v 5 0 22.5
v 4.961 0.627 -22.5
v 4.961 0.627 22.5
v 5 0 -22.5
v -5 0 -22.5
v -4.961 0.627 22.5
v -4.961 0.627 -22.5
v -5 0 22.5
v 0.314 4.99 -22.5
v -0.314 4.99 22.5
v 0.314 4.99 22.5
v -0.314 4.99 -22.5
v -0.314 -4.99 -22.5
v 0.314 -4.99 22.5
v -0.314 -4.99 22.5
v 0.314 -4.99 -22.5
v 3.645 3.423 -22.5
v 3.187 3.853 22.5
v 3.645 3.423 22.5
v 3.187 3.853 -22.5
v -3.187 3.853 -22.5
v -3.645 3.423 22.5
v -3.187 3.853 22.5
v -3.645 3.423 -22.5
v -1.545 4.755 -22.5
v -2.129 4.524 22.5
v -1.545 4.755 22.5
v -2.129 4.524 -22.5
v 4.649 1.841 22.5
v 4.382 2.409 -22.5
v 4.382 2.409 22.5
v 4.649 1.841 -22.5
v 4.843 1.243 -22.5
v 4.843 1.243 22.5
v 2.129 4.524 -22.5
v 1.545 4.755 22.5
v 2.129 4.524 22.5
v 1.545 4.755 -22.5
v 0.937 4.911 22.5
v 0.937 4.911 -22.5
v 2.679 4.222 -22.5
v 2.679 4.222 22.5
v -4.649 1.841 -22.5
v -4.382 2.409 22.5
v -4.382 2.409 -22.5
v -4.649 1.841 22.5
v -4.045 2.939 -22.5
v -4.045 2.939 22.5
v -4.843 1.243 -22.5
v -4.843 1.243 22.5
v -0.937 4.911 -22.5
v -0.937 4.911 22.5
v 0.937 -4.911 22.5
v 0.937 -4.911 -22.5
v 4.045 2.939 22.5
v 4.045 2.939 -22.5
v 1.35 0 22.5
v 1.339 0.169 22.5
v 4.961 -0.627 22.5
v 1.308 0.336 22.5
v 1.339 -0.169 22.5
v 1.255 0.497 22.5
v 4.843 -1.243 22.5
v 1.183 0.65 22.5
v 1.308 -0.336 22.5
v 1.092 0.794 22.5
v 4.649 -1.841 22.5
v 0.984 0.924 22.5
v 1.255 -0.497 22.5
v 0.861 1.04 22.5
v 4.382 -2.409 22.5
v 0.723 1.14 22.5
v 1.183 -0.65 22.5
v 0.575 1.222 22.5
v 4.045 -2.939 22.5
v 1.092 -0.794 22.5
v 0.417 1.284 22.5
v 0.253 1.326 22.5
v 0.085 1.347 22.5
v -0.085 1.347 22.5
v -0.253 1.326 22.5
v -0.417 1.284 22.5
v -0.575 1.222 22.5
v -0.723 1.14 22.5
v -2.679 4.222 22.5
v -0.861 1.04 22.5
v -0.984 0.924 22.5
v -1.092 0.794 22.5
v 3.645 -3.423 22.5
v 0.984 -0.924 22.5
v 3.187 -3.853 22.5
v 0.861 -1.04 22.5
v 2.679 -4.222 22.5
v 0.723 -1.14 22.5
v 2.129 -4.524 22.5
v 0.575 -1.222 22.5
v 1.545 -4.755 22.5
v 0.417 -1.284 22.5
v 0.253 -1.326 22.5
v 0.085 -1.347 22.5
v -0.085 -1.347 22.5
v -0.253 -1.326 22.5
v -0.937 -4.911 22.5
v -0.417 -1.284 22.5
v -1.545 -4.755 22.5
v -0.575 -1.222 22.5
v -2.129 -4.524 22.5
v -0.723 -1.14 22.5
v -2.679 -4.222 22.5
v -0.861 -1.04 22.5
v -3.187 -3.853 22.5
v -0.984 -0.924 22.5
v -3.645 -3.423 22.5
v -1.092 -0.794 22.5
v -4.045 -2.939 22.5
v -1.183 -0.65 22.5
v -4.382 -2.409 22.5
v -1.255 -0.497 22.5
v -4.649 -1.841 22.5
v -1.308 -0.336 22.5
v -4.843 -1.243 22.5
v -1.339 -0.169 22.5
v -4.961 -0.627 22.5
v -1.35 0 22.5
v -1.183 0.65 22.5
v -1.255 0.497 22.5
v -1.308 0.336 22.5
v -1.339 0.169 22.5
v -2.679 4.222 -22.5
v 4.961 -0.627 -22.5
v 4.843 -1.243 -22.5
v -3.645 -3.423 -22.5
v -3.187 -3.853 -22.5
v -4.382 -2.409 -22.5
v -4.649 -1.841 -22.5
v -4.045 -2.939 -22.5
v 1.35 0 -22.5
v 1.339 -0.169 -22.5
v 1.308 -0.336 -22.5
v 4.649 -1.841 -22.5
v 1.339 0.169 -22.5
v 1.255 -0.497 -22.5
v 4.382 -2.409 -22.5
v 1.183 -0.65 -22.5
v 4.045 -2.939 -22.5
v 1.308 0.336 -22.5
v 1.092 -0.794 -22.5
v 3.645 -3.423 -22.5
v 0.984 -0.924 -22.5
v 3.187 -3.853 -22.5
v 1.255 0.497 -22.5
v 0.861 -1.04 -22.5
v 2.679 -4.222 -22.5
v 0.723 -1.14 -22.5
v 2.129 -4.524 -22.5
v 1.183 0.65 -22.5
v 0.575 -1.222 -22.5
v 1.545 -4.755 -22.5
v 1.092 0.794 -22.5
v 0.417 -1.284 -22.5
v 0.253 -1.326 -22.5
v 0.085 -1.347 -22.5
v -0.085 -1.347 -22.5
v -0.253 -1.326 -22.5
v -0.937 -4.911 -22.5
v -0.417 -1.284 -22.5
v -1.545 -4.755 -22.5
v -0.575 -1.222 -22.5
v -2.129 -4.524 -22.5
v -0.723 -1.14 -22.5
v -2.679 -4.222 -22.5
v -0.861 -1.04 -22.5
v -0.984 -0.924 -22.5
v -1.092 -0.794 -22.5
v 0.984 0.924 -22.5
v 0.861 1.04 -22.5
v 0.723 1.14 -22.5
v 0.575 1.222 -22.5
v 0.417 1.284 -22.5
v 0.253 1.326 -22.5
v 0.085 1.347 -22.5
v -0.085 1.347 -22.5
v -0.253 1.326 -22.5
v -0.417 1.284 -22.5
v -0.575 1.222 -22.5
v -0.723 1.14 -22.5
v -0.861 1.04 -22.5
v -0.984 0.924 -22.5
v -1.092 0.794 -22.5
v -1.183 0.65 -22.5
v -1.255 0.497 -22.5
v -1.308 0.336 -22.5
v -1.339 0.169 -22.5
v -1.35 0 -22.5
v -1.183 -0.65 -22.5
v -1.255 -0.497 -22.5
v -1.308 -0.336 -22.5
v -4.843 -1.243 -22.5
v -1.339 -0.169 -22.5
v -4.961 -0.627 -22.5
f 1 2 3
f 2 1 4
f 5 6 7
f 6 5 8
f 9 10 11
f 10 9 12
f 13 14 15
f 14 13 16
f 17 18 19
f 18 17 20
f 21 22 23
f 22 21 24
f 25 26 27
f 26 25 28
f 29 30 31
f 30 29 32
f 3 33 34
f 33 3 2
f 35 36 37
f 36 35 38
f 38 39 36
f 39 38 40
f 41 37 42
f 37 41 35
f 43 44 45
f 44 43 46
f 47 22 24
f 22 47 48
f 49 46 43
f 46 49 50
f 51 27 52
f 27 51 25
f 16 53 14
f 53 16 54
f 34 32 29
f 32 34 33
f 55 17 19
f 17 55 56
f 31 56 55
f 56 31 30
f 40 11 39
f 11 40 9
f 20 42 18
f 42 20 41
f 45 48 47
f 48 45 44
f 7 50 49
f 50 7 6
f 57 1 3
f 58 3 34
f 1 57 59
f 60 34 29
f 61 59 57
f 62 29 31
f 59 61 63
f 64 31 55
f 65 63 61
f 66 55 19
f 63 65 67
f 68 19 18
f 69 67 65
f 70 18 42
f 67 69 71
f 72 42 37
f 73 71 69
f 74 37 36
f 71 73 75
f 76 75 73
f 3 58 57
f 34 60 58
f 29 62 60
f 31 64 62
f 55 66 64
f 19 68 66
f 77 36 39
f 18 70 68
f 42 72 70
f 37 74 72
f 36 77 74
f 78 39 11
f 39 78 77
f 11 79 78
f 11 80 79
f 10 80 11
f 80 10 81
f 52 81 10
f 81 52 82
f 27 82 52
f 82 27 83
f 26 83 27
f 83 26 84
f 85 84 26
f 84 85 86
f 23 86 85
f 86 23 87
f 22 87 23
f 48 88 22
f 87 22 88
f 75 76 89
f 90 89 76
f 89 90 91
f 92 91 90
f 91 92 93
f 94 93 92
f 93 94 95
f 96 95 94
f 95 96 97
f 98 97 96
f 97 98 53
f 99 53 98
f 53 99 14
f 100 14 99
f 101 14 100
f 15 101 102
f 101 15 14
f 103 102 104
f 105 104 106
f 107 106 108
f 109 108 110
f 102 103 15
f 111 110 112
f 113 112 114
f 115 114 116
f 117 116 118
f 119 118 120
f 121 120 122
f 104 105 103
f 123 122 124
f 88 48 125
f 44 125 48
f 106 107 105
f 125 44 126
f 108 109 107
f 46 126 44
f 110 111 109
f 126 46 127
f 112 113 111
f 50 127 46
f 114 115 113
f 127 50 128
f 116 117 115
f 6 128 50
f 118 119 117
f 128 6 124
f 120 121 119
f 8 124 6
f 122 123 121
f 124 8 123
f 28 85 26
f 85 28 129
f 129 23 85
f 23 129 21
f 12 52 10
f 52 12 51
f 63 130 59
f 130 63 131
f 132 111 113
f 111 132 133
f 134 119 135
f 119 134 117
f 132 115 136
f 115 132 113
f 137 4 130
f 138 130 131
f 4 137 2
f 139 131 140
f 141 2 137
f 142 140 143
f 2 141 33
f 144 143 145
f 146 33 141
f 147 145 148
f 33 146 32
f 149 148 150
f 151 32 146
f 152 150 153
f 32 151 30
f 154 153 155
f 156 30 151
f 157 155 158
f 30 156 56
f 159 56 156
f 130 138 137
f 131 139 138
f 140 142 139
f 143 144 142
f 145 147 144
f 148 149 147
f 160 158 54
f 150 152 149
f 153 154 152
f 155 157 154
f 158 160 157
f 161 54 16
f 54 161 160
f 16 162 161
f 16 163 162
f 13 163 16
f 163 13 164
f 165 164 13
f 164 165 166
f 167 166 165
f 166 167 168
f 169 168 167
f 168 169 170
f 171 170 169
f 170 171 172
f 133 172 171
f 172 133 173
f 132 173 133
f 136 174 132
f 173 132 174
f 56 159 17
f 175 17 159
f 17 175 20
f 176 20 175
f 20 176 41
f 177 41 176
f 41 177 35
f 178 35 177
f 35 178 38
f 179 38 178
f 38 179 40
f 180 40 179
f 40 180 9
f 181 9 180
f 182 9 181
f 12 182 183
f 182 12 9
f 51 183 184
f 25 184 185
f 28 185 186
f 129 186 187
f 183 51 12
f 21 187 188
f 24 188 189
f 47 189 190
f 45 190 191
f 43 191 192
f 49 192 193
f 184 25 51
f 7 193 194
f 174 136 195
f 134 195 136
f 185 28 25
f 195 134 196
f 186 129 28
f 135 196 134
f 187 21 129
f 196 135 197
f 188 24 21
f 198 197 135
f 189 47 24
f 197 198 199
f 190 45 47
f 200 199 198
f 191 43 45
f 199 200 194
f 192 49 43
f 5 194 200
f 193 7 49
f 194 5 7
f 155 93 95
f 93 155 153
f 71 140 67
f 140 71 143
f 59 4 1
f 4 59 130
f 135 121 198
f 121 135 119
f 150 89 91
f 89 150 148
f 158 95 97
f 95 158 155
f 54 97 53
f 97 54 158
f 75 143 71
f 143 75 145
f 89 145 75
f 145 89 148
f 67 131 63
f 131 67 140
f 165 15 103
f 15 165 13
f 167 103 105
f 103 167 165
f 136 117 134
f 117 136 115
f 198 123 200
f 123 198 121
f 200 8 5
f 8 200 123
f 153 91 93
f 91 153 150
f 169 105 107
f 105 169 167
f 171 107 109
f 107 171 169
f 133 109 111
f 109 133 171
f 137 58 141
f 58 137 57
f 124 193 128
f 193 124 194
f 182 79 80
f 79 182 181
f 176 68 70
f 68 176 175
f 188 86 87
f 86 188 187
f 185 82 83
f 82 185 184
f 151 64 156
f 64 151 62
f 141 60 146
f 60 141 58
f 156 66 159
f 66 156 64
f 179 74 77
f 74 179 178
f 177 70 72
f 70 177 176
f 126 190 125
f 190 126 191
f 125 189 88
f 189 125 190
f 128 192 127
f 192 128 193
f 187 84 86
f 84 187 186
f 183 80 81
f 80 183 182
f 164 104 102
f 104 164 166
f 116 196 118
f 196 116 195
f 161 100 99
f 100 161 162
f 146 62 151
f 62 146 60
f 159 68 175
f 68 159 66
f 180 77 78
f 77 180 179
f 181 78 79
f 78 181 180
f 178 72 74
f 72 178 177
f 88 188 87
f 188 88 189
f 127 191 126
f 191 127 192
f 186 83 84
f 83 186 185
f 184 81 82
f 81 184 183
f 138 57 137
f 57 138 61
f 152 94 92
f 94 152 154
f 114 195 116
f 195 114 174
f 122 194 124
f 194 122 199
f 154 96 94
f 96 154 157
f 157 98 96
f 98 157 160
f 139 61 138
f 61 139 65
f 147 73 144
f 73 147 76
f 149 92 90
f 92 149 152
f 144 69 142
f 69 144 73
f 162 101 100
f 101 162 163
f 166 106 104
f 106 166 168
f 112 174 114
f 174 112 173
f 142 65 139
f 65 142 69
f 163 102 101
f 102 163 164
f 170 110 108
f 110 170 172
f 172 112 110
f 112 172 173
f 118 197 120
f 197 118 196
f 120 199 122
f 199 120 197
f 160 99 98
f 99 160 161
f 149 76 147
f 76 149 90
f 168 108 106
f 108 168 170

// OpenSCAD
$fn = 50;


difference() {
	union() {
		translate(v = [0, 0, -22.5000000000]) {
			cylinder(h = 45, r = 5.0000000000);
		}
	}
	union() {
		translate(v = [0, 0, -100.0000000000]) {
			cylinder(h = 200, r = 1.3500000000);
		}
	}
}
